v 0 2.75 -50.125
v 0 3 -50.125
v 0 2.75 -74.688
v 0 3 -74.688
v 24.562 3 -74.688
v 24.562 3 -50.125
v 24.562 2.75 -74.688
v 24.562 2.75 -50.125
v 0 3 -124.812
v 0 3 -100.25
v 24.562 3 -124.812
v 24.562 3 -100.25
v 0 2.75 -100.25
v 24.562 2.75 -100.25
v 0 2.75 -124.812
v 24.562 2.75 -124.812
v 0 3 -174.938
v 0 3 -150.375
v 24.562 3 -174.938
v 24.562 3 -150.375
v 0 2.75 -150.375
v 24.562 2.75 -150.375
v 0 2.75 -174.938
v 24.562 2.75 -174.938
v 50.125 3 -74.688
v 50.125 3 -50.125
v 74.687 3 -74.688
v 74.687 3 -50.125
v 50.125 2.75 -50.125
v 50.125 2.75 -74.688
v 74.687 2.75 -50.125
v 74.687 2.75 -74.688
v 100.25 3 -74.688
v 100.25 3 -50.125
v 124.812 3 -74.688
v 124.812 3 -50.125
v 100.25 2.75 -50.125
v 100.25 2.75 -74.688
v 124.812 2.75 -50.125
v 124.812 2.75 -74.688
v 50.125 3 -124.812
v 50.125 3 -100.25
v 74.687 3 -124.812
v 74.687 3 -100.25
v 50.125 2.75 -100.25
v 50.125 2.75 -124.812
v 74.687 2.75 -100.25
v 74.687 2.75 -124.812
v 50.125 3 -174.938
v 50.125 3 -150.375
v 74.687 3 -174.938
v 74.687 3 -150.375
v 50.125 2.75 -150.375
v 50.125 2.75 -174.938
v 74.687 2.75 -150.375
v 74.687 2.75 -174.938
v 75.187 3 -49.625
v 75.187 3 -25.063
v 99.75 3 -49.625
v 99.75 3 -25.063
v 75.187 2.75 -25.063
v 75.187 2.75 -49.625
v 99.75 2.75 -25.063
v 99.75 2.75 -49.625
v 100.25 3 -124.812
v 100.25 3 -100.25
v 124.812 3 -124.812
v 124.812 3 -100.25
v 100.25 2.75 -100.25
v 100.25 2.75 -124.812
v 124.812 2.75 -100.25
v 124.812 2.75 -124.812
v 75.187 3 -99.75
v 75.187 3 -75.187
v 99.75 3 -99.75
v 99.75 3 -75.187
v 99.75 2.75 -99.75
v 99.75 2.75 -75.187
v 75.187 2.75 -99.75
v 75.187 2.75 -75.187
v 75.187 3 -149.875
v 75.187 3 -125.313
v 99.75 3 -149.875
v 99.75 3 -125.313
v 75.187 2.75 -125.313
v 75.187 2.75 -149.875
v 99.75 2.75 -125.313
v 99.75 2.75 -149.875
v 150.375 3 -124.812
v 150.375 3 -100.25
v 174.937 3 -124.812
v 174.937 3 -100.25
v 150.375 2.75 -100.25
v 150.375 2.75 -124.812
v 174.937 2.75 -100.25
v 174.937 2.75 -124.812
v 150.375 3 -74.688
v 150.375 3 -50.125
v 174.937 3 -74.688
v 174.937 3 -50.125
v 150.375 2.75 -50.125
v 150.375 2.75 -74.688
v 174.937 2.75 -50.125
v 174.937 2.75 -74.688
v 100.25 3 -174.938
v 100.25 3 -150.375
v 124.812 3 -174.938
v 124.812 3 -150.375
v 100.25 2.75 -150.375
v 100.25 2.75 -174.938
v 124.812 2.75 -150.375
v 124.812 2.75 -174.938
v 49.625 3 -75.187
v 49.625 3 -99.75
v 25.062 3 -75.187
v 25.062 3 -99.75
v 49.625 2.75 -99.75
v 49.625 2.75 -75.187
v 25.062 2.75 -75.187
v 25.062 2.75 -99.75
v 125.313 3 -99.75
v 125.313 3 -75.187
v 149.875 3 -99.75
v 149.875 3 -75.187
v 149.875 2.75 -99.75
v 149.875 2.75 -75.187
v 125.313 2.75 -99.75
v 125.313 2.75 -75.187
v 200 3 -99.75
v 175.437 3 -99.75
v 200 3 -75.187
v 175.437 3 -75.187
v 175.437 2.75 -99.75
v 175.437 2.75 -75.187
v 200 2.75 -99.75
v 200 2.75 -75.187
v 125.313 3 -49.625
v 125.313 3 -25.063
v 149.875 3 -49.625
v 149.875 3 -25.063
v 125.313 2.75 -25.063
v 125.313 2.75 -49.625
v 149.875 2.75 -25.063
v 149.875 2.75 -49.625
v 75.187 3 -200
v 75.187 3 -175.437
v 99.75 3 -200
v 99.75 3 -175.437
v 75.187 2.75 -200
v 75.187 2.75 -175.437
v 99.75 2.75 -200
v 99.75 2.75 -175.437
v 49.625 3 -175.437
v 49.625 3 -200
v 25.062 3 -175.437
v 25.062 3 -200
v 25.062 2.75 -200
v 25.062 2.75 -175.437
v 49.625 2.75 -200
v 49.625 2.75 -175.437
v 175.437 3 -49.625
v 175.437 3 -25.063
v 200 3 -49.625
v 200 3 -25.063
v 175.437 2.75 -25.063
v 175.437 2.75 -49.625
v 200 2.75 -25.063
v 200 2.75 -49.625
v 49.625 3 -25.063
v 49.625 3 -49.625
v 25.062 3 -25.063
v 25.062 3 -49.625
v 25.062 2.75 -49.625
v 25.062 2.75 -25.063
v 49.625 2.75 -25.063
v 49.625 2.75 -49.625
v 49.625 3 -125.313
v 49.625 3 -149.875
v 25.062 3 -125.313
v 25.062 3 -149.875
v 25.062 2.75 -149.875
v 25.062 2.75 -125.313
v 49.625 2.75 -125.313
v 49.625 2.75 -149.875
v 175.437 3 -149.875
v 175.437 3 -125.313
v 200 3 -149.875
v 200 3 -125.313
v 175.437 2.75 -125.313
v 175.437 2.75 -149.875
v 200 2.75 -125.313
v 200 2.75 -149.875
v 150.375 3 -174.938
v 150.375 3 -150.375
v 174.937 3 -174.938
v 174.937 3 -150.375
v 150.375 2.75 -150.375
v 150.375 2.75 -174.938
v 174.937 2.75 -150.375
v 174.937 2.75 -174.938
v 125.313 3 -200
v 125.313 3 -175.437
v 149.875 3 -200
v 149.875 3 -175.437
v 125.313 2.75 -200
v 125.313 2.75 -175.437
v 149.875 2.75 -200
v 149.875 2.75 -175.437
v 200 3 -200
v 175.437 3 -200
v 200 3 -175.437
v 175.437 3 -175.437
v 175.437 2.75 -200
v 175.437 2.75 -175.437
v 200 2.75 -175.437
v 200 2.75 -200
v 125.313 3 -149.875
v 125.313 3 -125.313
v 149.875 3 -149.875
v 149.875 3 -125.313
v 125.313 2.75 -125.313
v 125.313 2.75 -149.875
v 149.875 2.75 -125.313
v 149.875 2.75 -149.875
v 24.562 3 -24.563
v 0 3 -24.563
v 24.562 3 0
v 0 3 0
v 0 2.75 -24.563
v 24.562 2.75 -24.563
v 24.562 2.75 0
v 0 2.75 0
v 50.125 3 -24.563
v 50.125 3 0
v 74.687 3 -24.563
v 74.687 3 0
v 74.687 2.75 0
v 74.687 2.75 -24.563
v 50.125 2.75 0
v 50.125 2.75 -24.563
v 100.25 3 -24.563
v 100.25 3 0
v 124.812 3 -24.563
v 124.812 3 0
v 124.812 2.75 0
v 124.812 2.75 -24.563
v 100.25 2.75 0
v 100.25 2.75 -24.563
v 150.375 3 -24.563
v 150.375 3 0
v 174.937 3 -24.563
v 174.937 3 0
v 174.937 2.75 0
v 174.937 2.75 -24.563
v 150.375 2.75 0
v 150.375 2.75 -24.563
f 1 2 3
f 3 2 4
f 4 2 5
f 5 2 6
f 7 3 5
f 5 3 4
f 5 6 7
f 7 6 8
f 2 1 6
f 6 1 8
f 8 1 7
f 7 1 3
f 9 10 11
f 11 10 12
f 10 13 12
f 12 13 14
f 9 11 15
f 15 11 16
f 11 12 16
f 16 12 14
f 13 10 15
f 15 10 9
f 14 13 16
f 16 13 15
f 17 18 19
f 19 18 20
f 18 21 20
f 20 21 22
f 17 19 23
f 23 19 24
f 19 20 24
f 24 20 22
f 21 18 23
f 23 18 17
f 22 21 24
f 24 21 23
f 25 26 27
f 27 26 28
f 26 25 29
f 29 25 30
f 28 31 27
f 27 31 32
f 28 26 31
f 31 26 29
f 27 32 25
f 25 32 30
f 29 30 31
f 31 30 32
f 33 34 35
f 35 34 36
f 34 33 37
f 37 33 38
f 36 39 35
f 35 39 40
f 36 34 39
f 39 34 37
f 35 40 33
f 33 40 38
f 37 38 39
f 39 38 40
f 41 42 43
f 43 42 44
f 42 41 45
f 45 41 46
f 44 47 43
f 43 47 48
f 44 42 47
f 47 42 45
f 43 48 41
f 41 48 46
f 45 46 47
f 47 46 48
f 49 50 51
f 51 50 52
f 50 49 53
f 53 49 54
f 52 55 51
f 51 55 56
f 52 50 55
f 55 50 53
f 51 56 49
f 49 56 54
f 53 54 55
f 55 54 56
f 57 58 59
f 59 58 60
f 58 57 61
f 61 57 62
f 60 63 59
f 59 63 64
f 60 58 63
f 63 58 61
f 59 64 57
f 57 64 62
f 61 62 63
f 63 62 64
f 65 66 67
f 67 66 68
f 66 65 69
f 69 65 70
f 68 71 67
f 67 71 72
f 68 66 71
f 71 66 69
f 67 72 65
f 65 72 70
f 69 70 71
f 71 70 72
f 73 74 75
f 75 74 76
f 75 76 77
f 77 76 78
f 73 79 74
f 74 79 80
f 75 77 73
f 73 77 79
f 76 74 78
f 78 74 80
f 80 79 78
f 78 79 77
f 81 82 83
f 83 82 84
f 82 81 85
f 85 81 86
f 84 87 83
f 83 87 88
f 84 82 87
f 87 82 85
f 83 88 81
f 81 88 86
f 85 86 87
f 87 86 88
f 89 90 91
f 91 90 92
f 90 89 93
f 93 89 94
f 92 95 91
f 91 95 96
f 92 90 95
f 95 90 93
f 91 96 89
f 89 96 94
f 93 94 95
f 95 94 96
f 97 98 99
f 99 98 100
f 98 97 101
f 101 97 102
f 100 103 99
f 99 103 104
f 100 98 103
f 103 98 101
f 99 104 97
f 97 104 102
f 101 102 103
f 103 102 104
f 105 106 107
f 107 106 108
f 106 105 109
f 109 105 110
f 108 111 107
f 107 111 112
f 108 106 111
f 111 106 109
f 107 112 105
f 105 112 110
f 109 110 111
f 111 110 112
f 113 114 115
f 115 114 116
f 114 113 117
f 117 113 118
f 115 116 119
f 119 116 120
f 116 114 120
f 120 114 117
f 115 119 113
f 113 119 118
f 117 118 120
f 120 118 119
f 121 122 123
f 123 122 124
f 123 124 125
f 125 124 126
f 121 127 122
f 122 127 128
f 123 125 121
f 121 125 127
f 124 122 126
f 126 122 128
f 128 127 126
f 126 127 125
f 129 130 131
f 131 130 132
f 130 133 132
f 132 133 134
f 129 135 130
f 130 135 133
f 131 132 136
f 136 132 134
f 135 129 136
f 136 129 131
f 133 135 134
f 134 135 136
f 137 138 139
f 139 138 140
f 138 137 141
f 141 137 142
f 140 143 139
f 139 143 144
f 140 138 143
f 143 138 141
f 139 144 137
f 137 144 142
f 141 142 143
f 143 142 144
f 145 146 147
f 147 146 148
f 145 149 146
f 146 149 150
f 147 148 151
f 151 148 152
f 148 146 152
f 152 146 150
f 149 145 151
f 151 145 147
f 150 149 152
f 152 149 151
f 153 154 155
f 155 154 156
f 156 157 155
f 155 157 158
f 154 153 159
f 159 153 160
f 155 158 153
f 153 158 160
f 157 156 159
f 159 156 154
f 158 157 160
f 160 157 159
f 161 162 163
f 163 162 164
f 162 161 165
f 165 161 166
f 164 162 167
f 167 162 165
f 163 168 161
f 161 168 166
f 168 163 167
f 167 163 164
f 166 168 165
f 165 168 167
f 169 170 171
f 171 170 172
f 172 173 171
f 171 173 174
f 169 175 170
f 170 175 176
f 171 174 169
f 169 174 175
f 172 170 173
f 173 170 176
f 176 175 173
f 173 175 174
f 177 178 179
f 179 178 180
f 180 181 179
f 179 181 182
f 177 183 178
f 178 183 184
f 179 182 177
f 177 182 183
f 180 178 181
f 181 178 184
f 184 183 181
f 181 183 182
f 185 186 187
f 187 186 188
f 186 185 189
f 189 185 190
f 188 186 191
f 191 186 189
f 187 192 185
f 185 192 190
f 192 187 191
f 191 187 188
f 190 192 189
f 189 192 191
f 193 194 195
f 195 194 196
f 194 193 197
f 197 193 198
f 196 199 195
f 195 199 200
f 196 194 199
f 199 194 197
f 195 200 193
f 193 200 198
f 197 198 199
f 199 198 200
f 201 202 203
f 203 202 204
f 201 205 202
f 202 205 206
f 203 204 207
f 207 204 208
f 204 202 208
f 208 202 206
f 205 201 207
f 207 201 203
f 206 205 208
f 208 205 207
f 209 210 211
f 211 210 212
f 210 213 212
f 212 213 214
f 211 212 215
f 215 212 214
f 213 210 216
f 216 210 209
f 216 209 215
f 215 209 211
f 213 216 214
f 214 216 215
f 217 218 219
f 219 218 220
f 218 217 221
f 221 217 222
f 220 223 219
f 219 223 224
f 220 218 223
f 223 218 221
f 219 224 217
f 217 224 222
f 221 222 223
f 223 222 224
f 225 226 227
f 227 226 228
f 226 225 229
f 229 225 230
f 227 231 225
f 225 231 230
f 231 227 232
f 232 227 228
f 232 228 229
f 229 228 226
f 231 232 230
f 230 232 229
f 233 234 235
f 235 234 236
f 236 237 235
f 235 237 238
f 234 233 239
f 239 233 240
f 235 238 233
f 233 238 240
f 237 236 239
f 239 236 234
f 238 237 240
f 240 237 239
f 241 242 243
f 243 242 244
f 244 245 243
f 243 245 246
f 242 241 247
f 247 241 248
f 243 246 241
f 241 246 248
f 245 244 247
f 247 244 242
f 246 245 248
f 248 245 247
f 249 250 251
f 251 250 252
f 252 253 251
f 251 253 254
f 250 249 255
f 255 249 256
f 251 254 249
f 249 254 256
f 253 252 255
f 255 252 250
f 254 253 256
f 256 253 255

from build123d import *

# Parameters (mm, degrees)
SKETCH1_W                = 200
SKETCH1_H                = 200
BOSS_EXTRUDE1_DEPTH      = 3
SKETCH2_W                = 24.5625
SKETCH2_H                = 24.5625
CUT_EXTRUDE1_DEPTH       = 0.25
SKETCH4_W                = 4.4
SKETCH4_H                = 3.5
SKETCH4_W_2              = 3.9
SKETCH4_H_2              = 3
SKETCH4_W_3              = 1.95
SKETCH4_H_3              = 1.5
CUT_EXTRUDE2_DEPTH       = 1.5
CUT_EXTRUDE3_START       = -2.75
CUT_EXTRUDE3_OUTLINE_W   = 200
CUT_EXTRUDE3_OUTLINE_H   = 200
CUT_EXTRUDE3_DEPTH       = 2.75
CUT_EXTRUDE3_START_2     = -3
CUT_EXTRUDE3_2_OUTLINE_W = 24.5625
CUT_EXTRUDE3_2_OUTLINE_H = 24.5625
CUT_EXTRUDE3_2_DEPTH     = 0.25


# Read off the part's stored shape, not the designer's step: Cut-Extrude3
with BuildPart() as part:
    # Sketch1 → Boss-Extrude1 (new body)
    with BuildSketch(Plane(origin=(0, 0, 0), x_dir=(1, 0, 0), z_dir=(0, 1, 0))):
        with Locations((100, 100)):
            Rectangle(SKETCH1_W, SKETCH1_H)
    extrude(amount=BOSS_EXTRUDE1_DEPTH)

    # Sketch2 → Cut-Extrude1 (cut)
    with BuildSketch(Plane(origin=(0, 3, 0), x_dir=(1, 0, 0), z_dir=(0, 1, 0))):
        Polygon((150.375, 24.5625), (174.9375, 24.5625), (174.9375, 0), (175.4375, 0), (175.4375, 24.5625), (200, 24.5625), (200, 25.0625), (175.4375, 25.0625), (175.4375, 49.625), (200, 49.625), (200, 50.125), (175.4375, 50.125), (175.4375, 74.6875), (200, 74.6875), (200, 75.1875), (175.4375, 75.1875), (175.4375, 99.75), (200, 99.75), (200, 100.25), (175.4375, 100.25), (175.4375, 124.8125), (200, 124.8125), (200, 125.3125), (175.4375, 125.3125), (175.4375, 149.875), (200, 149.875), (200, 150.375), (175.4375, 150.375), (175.4375, 174.9375), (200, 174.9375), (200, 175.4375), (175.4375, 175.4375), (175.4375, 200), (174.9375, 200), (174.9375, 175.4375), (150.375, 175.4375), (150.375, 200), (149.875, 200), (149.875, 175.4375), (125.3125, 175.4375), (125.3125, 200), (124.8125, 200), (124.8125, 175.4375), (100.25, 175.4375), (100.25, 200), (99.75, 200), (99.75, 175.4375), (75.1875, 175.4375), (75.1875, 200), (74.6875, 200), (74.6875, 175.4375), (50.125, 175.4375), (50.125, 200), (49.625, 200), (49.625, 175.4375), (25.0625, 175.4375), (25.0625, 200), (24.5625, 200), (24.5625, 175.4375), (0, 175.4375), (0, 174.9375), (24.5625, 174.9375), (24.5625, 150.375), (0, 150.375), (0, 149.875), (24.5625, 149.875), (24.5625, 125.3125), (0, 125.3125), (0, 124.8125), (24.5625, 124.8125), (24.5625, 100.25), (0, 100.25), (0, 99.75), (24.5625, 99.75), (24.5625, 75.1875), (0, 75.1875), (0, 74.6875), (24.5625, 74.6875), (24.5625, 50.125), (0, 50.125), (0, 49.625), (24.5625, 49.625), (24.5625, 25.0625), (0, 25.0625), (0, 24.5625), (24.5625, 24.5625), (24.5625, 0), (25.0625, 0), (25.0625, 24.5625), (49.625, 24.5625), (49.625, 0), (50.125, 0), (50.125, 24.5625), (74.6875, 24.5625), (74.6875, 0), (75.1875, 0), (75.1875, 24.5625), (99.75, 24.5625), (99.75, 0), (100.25, 0), (100.25, 24.5625), (124.8125, 24.5625), (124.8125, 0), (125.3125, 0), (125.3125, 24.5625), (149.875, 24.5625), (149.875, 0), (150.375, 0), align=None)
        with Locations((37.34375, 37.34375)):
            Rectangle(SKETCH2_W, SKETCH2_H, mode=Mode.SUBTRACT)
        with Locations((62.40625, 37.34375)):
            Rectangle(SKETCH2_W, SKETCH2_H, mode=Mode.SUBTRACT)
        with Locations((37.34375, 62.40625)):
            Rectangle(SKETCH2_W, SKETCH2_H, mode=Mode.SUBTRACT)
        with Locations((62.40625, 62.40625)):
            Rectangle(SKETCH2_W, SKETCH2_H, mode=Mode.SUBTRACT)
        with Locations((87.46875, 37.34375)):
            Rectangle(SKETCH2_W, SKETCH2_H, mode=Mode.SUBTRACT)
        with Locations((87.46875, 62.40625)):
            Rectangle(SKETCH2_W, SKETCH2_H, mode=Mode.SUBTRACT)
        with Locations((37.34375, 87.46875)):
            Rectangle(SKETCH2_W, SKETCH2_H, mode=Mode.SUBTRACT)
        with Locations((62.40625, 87.46875)):
            Rectangle(SKETCH2_W, SKETCH2_H, mode=Mode.SUBTRACT)
        with Locations((87.46875, 87.46875)):
            Rectangle(SKETCH2_W, SKETCH2_H, mode=Mode.SUBTRACT)
        with Locations((112.53125, 37.34375)):
            Rectangle(SKETCH2_W, SKETCH2_H, mode=Mode.SUBTRACT)
        with Locations((112.53125, 62.40625)):
            Rectangle(SKETCH2_W, SKETCH2_H, mode=Mode.SUBTRACT)
        with Locations((137.59375, 37.34375)):
            Rectangle(SKETCH2_W, SKETCH2_H, mode=Mode.SUBTRACT)
        with Locations((162.65625, 37.34375)):
            Rectangle(SKETCH2_W, SKETCH2_H, mode=Mode.SUBTRACT)
        with Locations((137.59375, 62.40625)):
            Rectangle(SKETCH2_W, SKETCH2_H, mode=Mode.SUBTRACT)
        with Locations((162.65625, 62.40625)):
            Rectangle(SKETCH2_W, SKETCH2_H, mode=Mode.SUBTRACT)
        with Locations((112.53125, 87.46875)):
            Rectangle(SKETCH2_W, SKETCH2_H, mode=Mode.SUBTRACT)
        with Locations((137.59375, 87.46875)):
            Rectangle(SKETCH2_W, SKETCH2_H, mode=Mode.SUBTRACT)
        with Locations((162.65625, 87.46875)):
            Rectangle(SKETCH2_W, SKETCH2_H, mode=Mode.SUBTRACT)
        with Locations((37.34375, 112.53125)):
            Rectangle(SKETCH2_W, SKETCH2_H, mode=Mode.SUBTRACT)
        with Locations((62.40625, 112.53125)):
            Rectangle(SKETCH2_W, SKETCH2_H, mode=Mode.SUBTRACT)
        with Locations((87.46875, 112.53125)):
            Rectangle(SKETCH2_W, SKETCH2_H, mode=Mode.SUBTRACT)
        with Locations((37.34375, 137.59375)):
            Rectangle(SKETCH2_W, SKETCH2_H, mode=Mode.SUBTRACT)
        with Locations((62.40625, 137.59375)):
            Rectangle(SKETCH2_W, SKETCH2_H, mode=Mode.SUBTRACT)
        with Locations((37.34375, 162.65625)):
            Rectangle(SKETCH2_W, SKETCH2_H, mode=Mode.SUBTRACT)
        with Locations((62.40625, 162.65625)):
            Rectangle(SKETCH2_W, SKETCH2_H, mode=Mode.SUBTRACT)
        with Locations((87.46875, 137.59375)):
            Rectangle(SKETCH2_W, SKETCH2_H, mode=Mode.SUBTRACT)
        with Locations((87.46875, 162.65625)):
            Rectangle(SKETCH2_W, SKETCH2_H, mode=Mode.SUBTRACT)
        with Locations((112.53125, 112.53125)):
            Rectangle(SKETCH2_W, SKETCH2_H, mode=Mode.SUBTRACT)
        with Locations((137.59375, 112.53125)):
            Rectangle(SKETCH2_W, SKETCH2_H, mode=Mode.SUBTRACT)
        with Locations((162.65625, 112.53125)):
            Rectangle(SKETCH2_W, SKETCH2_H, mode=Mode.SUBTRACT)
        with Locations((112.53125, 137.59375)):
            Rectangle(SKETCH2_W, SKETCH2_H, mode=Mode.SUBTRACT)
        with Locations((112.53125, 162.65625)):
            Rectangle(SKETCH2_W, SKETCH2_H, mode=Mode.SUBTRACT)
        with Locations((137.59375, 137.59375)):
            Rectangle(SKETCH2_W, SKETCH2_H, mode=Mode.SUBTRACT)
        with Locations((162.65625, 137.59375)):
            Rectangle(SKETCH2_W, SKETCH2_H, mode=Mode.SUBTRACT)
        with Locations((137.59375, 162.65625)):
            Rectangle(SKETCH2_W, SKETCH2_H, mode=Mode.SUBTRACT)
        with Locations((162.65625, 162.65625)):
            Rectangle(SKETCH2_W, SKETCH2_H, mode=Mode.SUBTRACT)
    extrude(amount=-CUT_EXTRUDE1_DEPTH, mode=Mode.SUBTRACT)

    # Sketch4 → Cut-Extrude2 (cut)
    # profile 1 of 68: a face of its own
    with BuildSketch(Plane.XZ):
        with Locations((37.3425, -162.6575)):
            Rectangle(SKETCH4_W, SKETCH4_H)
    # profile 2 of 68: a face of its own
    with BuildSketch(Plane.XZ):
        with Locations((12.28, -162.6575)):
            Rectangle(SKETCH4_W, SKETCH4_H)
    # profile 3 of 68: a face of its own
    with BuildSketch(Plane.XZ):
        with Locations((12.28, -187.72)):
            Rectangle(SKETCH4_W, SKETCH4_H)
        with Locations((12.28, -187.72)):
            Rectangle(SKETCH4_W_2, SKETCH4_H_2, mode=Mode.SUBTRACT)
    # profile 4 of 68: a face of its own
    with BuildSketch(Plane.XZ):
        with Locations((13.255, -188.47)):
            Rectangle(SKETCH4_W_3, SKETCH4_H_3)
    # profile 5 of 68: a face of its own
    with BuildSketch(Plane.XZ):
        with Locations((13.255, -186.97)):
            Rectangle(SKETCH4_W_3, SKETCH4_H_3)
    # profile 6 of 68: a face of its own
    with BuildSketch(Plane.XZ):
        with Locations((11.305, -186.97)):
            Rectangle(SKETCH4_W_3, SKETCH4_H_3)
    # profile 7 of 68: a face of its own
    with BuildSketch(Plane.XZ):
        with Locations((11.305, -188.47)):
            Rectangle(SKETCH4_W_3, SKETCH4_H_3)
    # profile 8 of 68: a face of its own
    with BuildSketch(Plane.XZ):
        with Locations((37.3425, -187.72)):
            Rectangle(SKETCH4_W, SKETCH4_H)
    # profile 9 of 68: a face of its own
    with BuildSketch(Plane.XZ):
        with Locations((62.405, -187.72)):
            Rectangle(SKETCH4_W, SKETCH4_H)
    # profile 10 of 68: a face of its own
    with BuildSketch(Plane.XZ):
        with Locations((87.4675, -187.72)):
            Rectangle(SKETCH4_W, SKETCH4_H)
    # profile 11 of 68: a face of its own
    with BuildSketch(Plane.XZ):
        with Locations((112.53, -187.72)):
            Rectangle(SKETCH4_W, SKETCH4_H)
    # profile 12 of 68: a face of its own
    with BuildSketch(Plane.XZ):
        with Locations((137.5925, -187.72)):
            Rectangle(SKETCH4_W, SKETCH4_H)
    # profile 13 of 68: a face of its own
    with BuildSketch(Plane.XZ):
        with Locations((162.655, -187.72)):
            Rectangle(SKETCH4_W, SKETCH4_H)
    # profile 14 of 68: a face of its own
    with BuildSketch(Plane.XZ):
        with Locations((187.7175, -187.72)):
            Rectangle(SKETCH4_W, SKETCH4_H)
    # profile 15 of 68: a face of its own
    with BuildSketch(Plane.XZ):
        with Locations((187.7175, -162.6575)):
            Rectangle(SKETCH4_W, SKETCH4_H)
    # profile 16 of 68: a face of its own
    with BuildSketch(Plane.XZ):
        with Locations((162.655, -162.6575)):
            Rectangle(SKETCH4_W, SKETCH4_H)
    # profile 17 of 68: a face of its own
    with BuildSketch(Plane.XZ):
        with Locations((137.5925, -162.6575)):
            Rectangle(SKETCH4_W, SKETCH4_H)
    # profile 18 of 68: a face of its own
    with BuildSketch(Plane.XZ):
        with Locations((112.53, -162.6575)):
            Rectangle(SKETCH4_W, SKETCH4_H)
    # profile 19 of 68: a face of its own
    with BuildSketch(Plane.XZ):
        with Locations((87.4675, -162.6575)):
            Rectangle(SKETCH4_W, SKETCH4_H)
    # profile 20 of 68: a face of its own
    with BuildSketch(Plane.XZ):
        with Locations((62.405, -162.6575)):
            Rectangle(SKETCH4_W, SKETCH4_H)
    # profile 21 of 68: a face of its own
    with BuildSketch(Plane.XZ):
        with Locations((12.28, -137.595)):
            Rectangle(SKETCH4_W, SKETCH4_H)
    # profile 22 of 68: a face of its own
    with BuildSketch(Plane.XZ):
        with Locations((37.3425, -137.595)):
            Rectangle(SKETCH4_W, SKETCH4_H)
    # profile 23 of 68: a face of its own
    with BuildSketch(Plane.XZ):
        with Locations((62.405, -137.595)):
            Rectangle(SKETCH4_W, SKETCH4_H)
    # profile 24 of 68: a face of its own
    with BuildSketch(Plane.XZ):
        with Locations((87.4675, -137.595)):
            Rectangle(SKETCH4_W, SKETCH4_H)
    # profile 25 of 68: a face of its own
    with BuildSketch(Plane.XZ):
        with Locations((112.53, -137.595)):
            Rectangle(SKETCH4_W, SKETCH4_H)
    # profile 26 of 68: a face of its own
    with BuildSketch(Plane.XZ):
        with Locations((137.5925, -137.595)):
            Rectangle(SKETCH4_W, SKETCH4_H)
    # profile 27 of 68: a face of its own
    with BuildSketch(Plane.XZ):
        with Locations((162.655, -137.595)):
            Rectangle(SKETCH4_W, SKETCH4_H)
    # profile 28 of 68: a face of its own
    with BuildSketch(Plane.XZ):
        with Locations((187.7175, -137.595)):
            Rectangle(SKETCH4_W, SKETCH4_H)
    # profile 29 of 68: a face of its own
    with BuildSketch(Plane.XZ):
        with Locations((187.7175, -112.5325)):
            Rectangle(SKETCH4_W, SKETCH4_H)
    # profile 30 of 68: a face of its own
    with BuildSketch(Plane.XZ):
        with Locations((162.655, -112.5325)):
            Rectangle(SKETCH4_W, SKETCH4_H)
    # profile 31 of 68: a face of its own
    with BuildSketch(Plane.XZ):
        with Locations((137.5925, -112.5325)):
            Rectangle(SKETCH4_W, SKETCH4_H)
    # profile 32 of 68: a face of its own
    with BuildSketch(Plane.XZ):
        with Locations((112.53, -112.5325)):
            Rectangle(SKETCH4_W, SKETCH4_H)
    # profile 33 of 68: a face of its own
    with BuildSketch(Plane.XZ):
        with Locations((87.4675, -112.5325)):
            Rectangle(SKETCH4_W, SKETCH4_H)
    # profile 34 of 68: a face of its own
    with BuildSketch(Plane.XZ):
        with Locations((62.405, -112.5325)):
            Rectangle(SKETCH4_W, SKETCH4_H)
    # profile 35 of 68: a face of its own
    with BuildSketch(Plane.XZ):
        with Locations((37.3425, -112.5325)):
            Rectangle(SKETCH4_W, SKETCH4_H)
    # profile 36 of 68: a face of its own
    with BuildSketch(Plane.XZ):
        with Locations((12.28, -112.5325)):
            Rectangle(SKETCH4_W, SKETCH4_H)
    # profile 37 of 68: a face of its own
    with BuildSketch(Plane.XZ):
        with Locations((12.28, -87.47)):
            Rectangle(SKETCH4_W, SKETCH4_H)
    # profile 38 of 68: a face of its own
    with BuildSketch(Plane.XZ):
        with Locations((37.3425, -87.47)):
            Rectangle(SKETCH4_W, SKETCH4_H)
    # profile 39 of 68: a face of its own
    with BuildSketch(Plane.XZ):
        with Locations((62.405, -87.47)):
            Rectangle(SKETCH4_W, SKETCH4_H)
    # profile 40 of 68: a face of its own
    with BuildSketch(Plane.XZ):
        with Locations((87.4675, -87.47)):
            Rectangle(SKETCH4_W, SKETCH4_H)
    # profile 41 of 68: a face of its own
    with BuildSketch(Plane.XZ):
        with Locations((112.53, -87.47)):
            Rectangle(SKETCH4_W, SKETCH4_H)
    # profile 42 of 68: a face of its own
    with BuildSketch(Plane.XZ):
        with Locations((137.5925, -87.47)):
            Rectangle(SKETCH4_W, SKETCH4_H)
    # profile 43 of 68: a face of its own
    with BuildSketch(Plane.XZ):
        with Locations((162.655, -87.47)):
            Rectangle(SKETCH4_W, SKETCH4_H)
    # profile 44 of 68: a face of its own
    with BuildSketch(Plane.XZ):
        with Locations((187.7175, -87.47)):
            Rectangle(SKETCH4_W, SKETCH4_H)
    # profile 45 of 68: a face of its own
    with BuildSketch(Plane.XZ):
        with Locations((187.7175, -62.4075)):
            Rectangle(SKETCH4_W, SKETCH4_H)
    # profile 46 of 68: a face of its own
    with BuildSketch(Plane.XZ):
        with Locations((162.655, -62.4075)):
            Rectangle(SKETCH4_W, SKETCH4_H)
    # profile 47 of 68: a face of its own
    with BuildSketch(Plane.XZ):
        with Locations((137.5925, -62.4075)):
            Rectangle(SKETCH4_W, SKETCH4_H)
    # profile 48 of 68: a face of its own
    with BuildSketch(Plane.XZ):
        with Locations((112.53, -62.4075)):
            Rectangle(SKETCH4_W, SKETCH4_H)
    # profile 49 of 68: a face of its own
    with BuildSketch(Plane.XZ):
        with Locations((87.4675, -62.4075)):
            Rectangle(SKETCH4_W, SKETCH4_H)
    # profile 50 of 68: a face of its own
    with BuildSketch(Plane.XZ):
        with Locations((62.405, -62.4075)):
            Rectangle(SKETCH4_W, SKETCH4_H)
    # profile 51 of 68: a face of its own
    with BuildSketch(Plane.XZ):
        with Locations((37.3425, -62.4075)):
            Rectangle(SKETCH4_W, SKETCH4_H)
    # profile 52 of 68: a face of its own
    with BuildSketch(Plane.XZ):
        with Locations((12.28, -62.4075)):
            Rectangle(SKETCH4_W, SKETCH4_H)
    # profile 53 of 68: a face of its own
    with BuildSketch(Plane.XZ):
        with Locations((12.28, -37.345)):
            Rectangle(SKETCH4_W, SKETCH4_H)
    # profile 54 of 68: a face of its own
    with BuildSketch(Plane.XZ):
        with Locations((37.3425, -37.345)):
            Rectangle(SKETCH4_W, SKETCH4_H)
    # profile 55 of 68: a face of its own
    with BuildSketch(Plane.XZ):
        with Locations((62.405, -37.345)):
            Rectangle(SKETCH4_W, SKETCH4_H)
    # profile 56 of 68: a face of its own
    with BuildSketch(Plane.XZ):
        with Locations((87.4675, -37.345)):
            Rectangle(SKETCH4_W, SKETCH4_H)
    # profile 57 of 68: a face of its own
    with BuildSketch(Plane.XZ):
        with Locations((112.53, -37.345)):
            Rectangle(SKETCH4_W, SKETCH4_H)
    # profile 58 of 68: a face of its own
    with BuildSketch(Plane.XZ):
        with Locations((137.5925, -37.345)):
            Rectangle(SKETCH4_W, SKETCH4_H)
    # profile 59 of 68: a face of its own
    with BuildSketch(Plane.XZ):
        with Locations((162.655, -37.345)):
            Rectangle(SKETCH4_W, SKETCH4_H)
    # profile 60 of 68: a face of its own
    with BuildSketch(Plane.XZ):
        with Locations((187.7175, -37.345)):
            Rectangle(SKETCH4_W, SKETCH4_H)
    # profile 61 of 68: a face of its own
    with BuildSketch(Plane.XZ):
        with Locations((187.7175, -12.2825)):
            Rectangle(SKETCH4_W, SKETCH4_H)
    # profile 62 of 68: a face of its own
    with BuildSketch(Plane.XZ):
        with Locations((162.655, -12.2825)):
            Rectangle(SKETCH4_W, SKETCH4_H)
    # profile 63 of 68: a face of its own
    with BuildSketch(Plane.XZ):
        with Locations((137.5925, -12.2825)):
            Rectangle(SKETCH4_W, SKETCH4_H)
    # profile 64 of 68: a face of its own
    with BuildSketch(Plane.XZ):
        with Locations((112.53, -12.2825)):
            Rectangle(SKETCH4_W, SKETCH4_H)
    # profile 65 of 68: a face of its own
    with BuildSketch(Plane.XZ):
        with Locations((87.4675, -12.2825)):
            Rectangle(SKETCH4_W, SKETCH4_H)
    # profile 66 of 68: a face of its own
    with BuildSketch(Plane.XZ):
        with Locations((62.405, -12.2825)):
            Rectangle(SKETCH4_W, SKETCH4_H)
    # profile 67 of 68: a face of its own
    with BuildSketch(Plane.XZ):
        with Locations((12.28, -12.2825)):
            Rectangle(SKETCH4_W, SKETCH4_H)
    # profile 68 of 68: a face of its own
    with BuildSketch(Plane.XZ):
        with Locations((37.3425, -12.2825)):
            Rectangle(SKETCH4_W, SKETCH4_H)
    extrude(amount=-CUT_EXTRUDE2_DEPTH, mode=Mode.SUBTRACT)

    # Cut-Extrude3 outline → Cut-Extrude3 (cut)
    with BuildSketch(Plane.XZ.offset(CUT_EXTRUDE3_START)):
        with Locations((100, -100)):
            Rectangle(CUT_EXTRUDE3_OUTLINE_W, CUT_EXTRUDE3_OUTLINE_H)
    extrude(amount=CUT_EXTRUDE3_DEPTH, mode=Mode.SUBTRACT)

    # Cut-Extrude3 2 outline → Cut-Extrude3 2 (cut)
    with BuildSketch(Plane.XZ.offset(CUT_EXTRUDE3_START_2)):
        with Locations((12.28125, -187.71875)):
            Rectangle(CUT_EXTRUDE3_2_OUTLINE_W, CUT_EXTRUDE3_2_OUTLINE_H)
        with Locations((12.28125, -137.59375)):
            Rectangle(CUT_EXTRUDE3_2_OUTLINE_W, CUT_EXTRUDE3_2_OUTLINE_H)
        with Locations((62.40625, -187.71875)):
            Rectangle(CUT_EXTRUDE3_2_OUTLINE_W, CUT_EXTRUDE3_2_OUTLINE_H)
        with Locations((12.28125, -87.46875)):
            Rectangle(CUT_EXTRUDE3_2_OUTLINE_W, CUT_EXTRUDE3_2_OUTLINE_H)
        with Locations((112.53125, -187.71875)):
            Rectangle(CUT_EXTRUDE3_2_OUTLINE_W, CUT_EXTRUDE3_2_OUTLINE_H)
        with Locations((12.28125, -37.34375)):
            Rectangle(CUT_EXTRUDE3_2_OUTLINE_W, CUT_EXTRUDE3_2_OUTLINE_H)
        with Locations((162.65625, -187.71875)):
            Rectangle(CUT_EXTRUDE3_2_OUTLINE_W, CUT_EXTRUDE3_2_OUTLINE_H)
        with Locations((37.34375, -12.28125)):
            Rectangle(CUT_EXTRUDE3_2_OUTLINE_W, CUT_EXTRUDE3_2_OUTLINE_H)
        with Locations((187.71875, -162.65625)):
            Rectangle(CUT_EXTRUDE3_2_OUTLINE_W, CUT_EXTRUDE3_2_OUTLINE_H)
        with Locations((87.46875, -12.28125)):
            Rectangle(CUT_EXTRUDE3_2_OUTLINE_W, CUT_EXTRUDE3_2_OUTLINE_H)
        with Locations((187.71875, -112.53125)):
            Rectangle(CUT_EXTRUDE3_2_OUTLINE_W, CUT_EXTRUDE3_2_OUTLINE_H)
        with Locations((137.59375, -12.28125)):
            Rectangle(CUT_EXTRUDE3_2_OUTLINE_W, CUT_EXTRUDE3_2_OUTLINE_H)
        with Locations((187.71875, -62.40625)):
            Rectangle(CUT_EXTRUDE3_2_OUTLINE_W, CUT_EXTRUDE3_2_OUTLINE_H)
        with Locations((187.71875, -12.28125)):
            Rectangle(CUT_EXTRUDE3_2_OUTLINE_W, CUT_EXTRUDE3_2_OUTLINE_H)
        with Locations((62.40625, -87.46875)):
            Rectangle(CUT_EXTRUDE3_2_OUTLINE_W, CUT_EXTRUDE3_2_OUTLINE_H)
        with Locations((112.53125, -87.46875)):
            Rectangle(CUT_EXTRUDE3_2_OUTLINE_W, CUT_EXTRUDE3_2_OUTLINE_H)
        with Locations((162.65625, -87.46875)):
            Rectangle(CUT_EXTRUDE3_2_OUTLINE_W, CUT_EXTRUDE3_2_OUTLINE_H)
        with Locations((37.34375, -62.40625)):
            Rectangle(CUT_EXTRUDE3_2_OUTLINE_W, CUT_EXTRUDE3_2_OUTLINE_H)
        with Locations((87.46875, -62.40625)):
            Rectangle(CUT_EXTRUDE3_2_OUTLINE_W, CUT_EXTRUDE3_2_OUTLINE_H)
        with Locations((137.59375, -62.40625)):
            Rectangle(CUT_EXTRUDE3_2_OUTLINE_W, CUT_EXTRUDE3_2_OUTLINE_H)
        with Locations((62.40625, -37.34375)):
            Rectangle(CUT_EXTRUDE3_2_OUTLINE_W, CUT_EXTRUDE3_2_OUTLINE_H)
        with Locations((112.53125, -37.34375)):
            Rectangle(CUT_EXTRUDE3_2_OUTLINE_W, CUT_EXTRUDE3_2_OUTLINE_H)
        with Locations((162.65625, -37.34375)):
            Rectangle(CUT_EXTRUDE3_2_OUTLINE_W, CUT_EXTRUDE3_2_OUTLINE_H)
        with Locations((37.34375, -162.65625)):
            Rectangle(CUT_EXTRUDE3_2_OUTLINE_W, CUT_EXTRUDE3_2_OUTLINE_H)
        with Locations((87.46875, -162.65625)):
            Rectangle(CUT_EXTRUDE3_2_OUTLINE_W, CUT_EXTRUDE3_2_OUTLINE_H)
        with Locations((137.59375, -162.65625)):
            Rectangle(CUT_EXTRUDE3_2_OUTLINE_W, CUT_EXTRUDE3_2_OUTLINE_H)
        with Locations((62.40625, -137.59375)):
            Rectangle(CUT_EXTRUDE3_2_OUTLINE_W, CUT_EXTRUDE3_2_OUTLINE_H)
        with Locations((112.53125, -137.59375)):
            Rectangle(CUT_EXTRUDE3_2_OUTLINE_W, CUT_EXTRUDE3_2_OUTLINE_H)
        with Locations((162.65625, -137.59375)):
            Rectangle(CUT_EXTRUDE3_2_OUTLINE_W, CUT_EXTRUDE3_2_OUTLINE_H)
        with Locations((37.34375, -112.53125)):
            Rectangle(CUT_EXTRUDE3_2_OUTLINE_W, CUT_EXTRUDE3_2_OUTLINE_H)
        with Locations((87.46875, -112.53125)):
            Rectangle(CUT_EXTRUDE3_2_OUTLINE_W, CUT_EXTRUDE3_2_OUTLINE_H)
        with Locations((137.59375, -112.53125)):
            Rectangle(CUT_EXTRUDE3_2_OUTLINE_W, CUT_EXTRUDE3_2_OUTLINE_H)
    extrude(amount=CUT_EXTRUDE3_2_DEPTH, mode=Mode.SUBTRACT)


solid = part.part
